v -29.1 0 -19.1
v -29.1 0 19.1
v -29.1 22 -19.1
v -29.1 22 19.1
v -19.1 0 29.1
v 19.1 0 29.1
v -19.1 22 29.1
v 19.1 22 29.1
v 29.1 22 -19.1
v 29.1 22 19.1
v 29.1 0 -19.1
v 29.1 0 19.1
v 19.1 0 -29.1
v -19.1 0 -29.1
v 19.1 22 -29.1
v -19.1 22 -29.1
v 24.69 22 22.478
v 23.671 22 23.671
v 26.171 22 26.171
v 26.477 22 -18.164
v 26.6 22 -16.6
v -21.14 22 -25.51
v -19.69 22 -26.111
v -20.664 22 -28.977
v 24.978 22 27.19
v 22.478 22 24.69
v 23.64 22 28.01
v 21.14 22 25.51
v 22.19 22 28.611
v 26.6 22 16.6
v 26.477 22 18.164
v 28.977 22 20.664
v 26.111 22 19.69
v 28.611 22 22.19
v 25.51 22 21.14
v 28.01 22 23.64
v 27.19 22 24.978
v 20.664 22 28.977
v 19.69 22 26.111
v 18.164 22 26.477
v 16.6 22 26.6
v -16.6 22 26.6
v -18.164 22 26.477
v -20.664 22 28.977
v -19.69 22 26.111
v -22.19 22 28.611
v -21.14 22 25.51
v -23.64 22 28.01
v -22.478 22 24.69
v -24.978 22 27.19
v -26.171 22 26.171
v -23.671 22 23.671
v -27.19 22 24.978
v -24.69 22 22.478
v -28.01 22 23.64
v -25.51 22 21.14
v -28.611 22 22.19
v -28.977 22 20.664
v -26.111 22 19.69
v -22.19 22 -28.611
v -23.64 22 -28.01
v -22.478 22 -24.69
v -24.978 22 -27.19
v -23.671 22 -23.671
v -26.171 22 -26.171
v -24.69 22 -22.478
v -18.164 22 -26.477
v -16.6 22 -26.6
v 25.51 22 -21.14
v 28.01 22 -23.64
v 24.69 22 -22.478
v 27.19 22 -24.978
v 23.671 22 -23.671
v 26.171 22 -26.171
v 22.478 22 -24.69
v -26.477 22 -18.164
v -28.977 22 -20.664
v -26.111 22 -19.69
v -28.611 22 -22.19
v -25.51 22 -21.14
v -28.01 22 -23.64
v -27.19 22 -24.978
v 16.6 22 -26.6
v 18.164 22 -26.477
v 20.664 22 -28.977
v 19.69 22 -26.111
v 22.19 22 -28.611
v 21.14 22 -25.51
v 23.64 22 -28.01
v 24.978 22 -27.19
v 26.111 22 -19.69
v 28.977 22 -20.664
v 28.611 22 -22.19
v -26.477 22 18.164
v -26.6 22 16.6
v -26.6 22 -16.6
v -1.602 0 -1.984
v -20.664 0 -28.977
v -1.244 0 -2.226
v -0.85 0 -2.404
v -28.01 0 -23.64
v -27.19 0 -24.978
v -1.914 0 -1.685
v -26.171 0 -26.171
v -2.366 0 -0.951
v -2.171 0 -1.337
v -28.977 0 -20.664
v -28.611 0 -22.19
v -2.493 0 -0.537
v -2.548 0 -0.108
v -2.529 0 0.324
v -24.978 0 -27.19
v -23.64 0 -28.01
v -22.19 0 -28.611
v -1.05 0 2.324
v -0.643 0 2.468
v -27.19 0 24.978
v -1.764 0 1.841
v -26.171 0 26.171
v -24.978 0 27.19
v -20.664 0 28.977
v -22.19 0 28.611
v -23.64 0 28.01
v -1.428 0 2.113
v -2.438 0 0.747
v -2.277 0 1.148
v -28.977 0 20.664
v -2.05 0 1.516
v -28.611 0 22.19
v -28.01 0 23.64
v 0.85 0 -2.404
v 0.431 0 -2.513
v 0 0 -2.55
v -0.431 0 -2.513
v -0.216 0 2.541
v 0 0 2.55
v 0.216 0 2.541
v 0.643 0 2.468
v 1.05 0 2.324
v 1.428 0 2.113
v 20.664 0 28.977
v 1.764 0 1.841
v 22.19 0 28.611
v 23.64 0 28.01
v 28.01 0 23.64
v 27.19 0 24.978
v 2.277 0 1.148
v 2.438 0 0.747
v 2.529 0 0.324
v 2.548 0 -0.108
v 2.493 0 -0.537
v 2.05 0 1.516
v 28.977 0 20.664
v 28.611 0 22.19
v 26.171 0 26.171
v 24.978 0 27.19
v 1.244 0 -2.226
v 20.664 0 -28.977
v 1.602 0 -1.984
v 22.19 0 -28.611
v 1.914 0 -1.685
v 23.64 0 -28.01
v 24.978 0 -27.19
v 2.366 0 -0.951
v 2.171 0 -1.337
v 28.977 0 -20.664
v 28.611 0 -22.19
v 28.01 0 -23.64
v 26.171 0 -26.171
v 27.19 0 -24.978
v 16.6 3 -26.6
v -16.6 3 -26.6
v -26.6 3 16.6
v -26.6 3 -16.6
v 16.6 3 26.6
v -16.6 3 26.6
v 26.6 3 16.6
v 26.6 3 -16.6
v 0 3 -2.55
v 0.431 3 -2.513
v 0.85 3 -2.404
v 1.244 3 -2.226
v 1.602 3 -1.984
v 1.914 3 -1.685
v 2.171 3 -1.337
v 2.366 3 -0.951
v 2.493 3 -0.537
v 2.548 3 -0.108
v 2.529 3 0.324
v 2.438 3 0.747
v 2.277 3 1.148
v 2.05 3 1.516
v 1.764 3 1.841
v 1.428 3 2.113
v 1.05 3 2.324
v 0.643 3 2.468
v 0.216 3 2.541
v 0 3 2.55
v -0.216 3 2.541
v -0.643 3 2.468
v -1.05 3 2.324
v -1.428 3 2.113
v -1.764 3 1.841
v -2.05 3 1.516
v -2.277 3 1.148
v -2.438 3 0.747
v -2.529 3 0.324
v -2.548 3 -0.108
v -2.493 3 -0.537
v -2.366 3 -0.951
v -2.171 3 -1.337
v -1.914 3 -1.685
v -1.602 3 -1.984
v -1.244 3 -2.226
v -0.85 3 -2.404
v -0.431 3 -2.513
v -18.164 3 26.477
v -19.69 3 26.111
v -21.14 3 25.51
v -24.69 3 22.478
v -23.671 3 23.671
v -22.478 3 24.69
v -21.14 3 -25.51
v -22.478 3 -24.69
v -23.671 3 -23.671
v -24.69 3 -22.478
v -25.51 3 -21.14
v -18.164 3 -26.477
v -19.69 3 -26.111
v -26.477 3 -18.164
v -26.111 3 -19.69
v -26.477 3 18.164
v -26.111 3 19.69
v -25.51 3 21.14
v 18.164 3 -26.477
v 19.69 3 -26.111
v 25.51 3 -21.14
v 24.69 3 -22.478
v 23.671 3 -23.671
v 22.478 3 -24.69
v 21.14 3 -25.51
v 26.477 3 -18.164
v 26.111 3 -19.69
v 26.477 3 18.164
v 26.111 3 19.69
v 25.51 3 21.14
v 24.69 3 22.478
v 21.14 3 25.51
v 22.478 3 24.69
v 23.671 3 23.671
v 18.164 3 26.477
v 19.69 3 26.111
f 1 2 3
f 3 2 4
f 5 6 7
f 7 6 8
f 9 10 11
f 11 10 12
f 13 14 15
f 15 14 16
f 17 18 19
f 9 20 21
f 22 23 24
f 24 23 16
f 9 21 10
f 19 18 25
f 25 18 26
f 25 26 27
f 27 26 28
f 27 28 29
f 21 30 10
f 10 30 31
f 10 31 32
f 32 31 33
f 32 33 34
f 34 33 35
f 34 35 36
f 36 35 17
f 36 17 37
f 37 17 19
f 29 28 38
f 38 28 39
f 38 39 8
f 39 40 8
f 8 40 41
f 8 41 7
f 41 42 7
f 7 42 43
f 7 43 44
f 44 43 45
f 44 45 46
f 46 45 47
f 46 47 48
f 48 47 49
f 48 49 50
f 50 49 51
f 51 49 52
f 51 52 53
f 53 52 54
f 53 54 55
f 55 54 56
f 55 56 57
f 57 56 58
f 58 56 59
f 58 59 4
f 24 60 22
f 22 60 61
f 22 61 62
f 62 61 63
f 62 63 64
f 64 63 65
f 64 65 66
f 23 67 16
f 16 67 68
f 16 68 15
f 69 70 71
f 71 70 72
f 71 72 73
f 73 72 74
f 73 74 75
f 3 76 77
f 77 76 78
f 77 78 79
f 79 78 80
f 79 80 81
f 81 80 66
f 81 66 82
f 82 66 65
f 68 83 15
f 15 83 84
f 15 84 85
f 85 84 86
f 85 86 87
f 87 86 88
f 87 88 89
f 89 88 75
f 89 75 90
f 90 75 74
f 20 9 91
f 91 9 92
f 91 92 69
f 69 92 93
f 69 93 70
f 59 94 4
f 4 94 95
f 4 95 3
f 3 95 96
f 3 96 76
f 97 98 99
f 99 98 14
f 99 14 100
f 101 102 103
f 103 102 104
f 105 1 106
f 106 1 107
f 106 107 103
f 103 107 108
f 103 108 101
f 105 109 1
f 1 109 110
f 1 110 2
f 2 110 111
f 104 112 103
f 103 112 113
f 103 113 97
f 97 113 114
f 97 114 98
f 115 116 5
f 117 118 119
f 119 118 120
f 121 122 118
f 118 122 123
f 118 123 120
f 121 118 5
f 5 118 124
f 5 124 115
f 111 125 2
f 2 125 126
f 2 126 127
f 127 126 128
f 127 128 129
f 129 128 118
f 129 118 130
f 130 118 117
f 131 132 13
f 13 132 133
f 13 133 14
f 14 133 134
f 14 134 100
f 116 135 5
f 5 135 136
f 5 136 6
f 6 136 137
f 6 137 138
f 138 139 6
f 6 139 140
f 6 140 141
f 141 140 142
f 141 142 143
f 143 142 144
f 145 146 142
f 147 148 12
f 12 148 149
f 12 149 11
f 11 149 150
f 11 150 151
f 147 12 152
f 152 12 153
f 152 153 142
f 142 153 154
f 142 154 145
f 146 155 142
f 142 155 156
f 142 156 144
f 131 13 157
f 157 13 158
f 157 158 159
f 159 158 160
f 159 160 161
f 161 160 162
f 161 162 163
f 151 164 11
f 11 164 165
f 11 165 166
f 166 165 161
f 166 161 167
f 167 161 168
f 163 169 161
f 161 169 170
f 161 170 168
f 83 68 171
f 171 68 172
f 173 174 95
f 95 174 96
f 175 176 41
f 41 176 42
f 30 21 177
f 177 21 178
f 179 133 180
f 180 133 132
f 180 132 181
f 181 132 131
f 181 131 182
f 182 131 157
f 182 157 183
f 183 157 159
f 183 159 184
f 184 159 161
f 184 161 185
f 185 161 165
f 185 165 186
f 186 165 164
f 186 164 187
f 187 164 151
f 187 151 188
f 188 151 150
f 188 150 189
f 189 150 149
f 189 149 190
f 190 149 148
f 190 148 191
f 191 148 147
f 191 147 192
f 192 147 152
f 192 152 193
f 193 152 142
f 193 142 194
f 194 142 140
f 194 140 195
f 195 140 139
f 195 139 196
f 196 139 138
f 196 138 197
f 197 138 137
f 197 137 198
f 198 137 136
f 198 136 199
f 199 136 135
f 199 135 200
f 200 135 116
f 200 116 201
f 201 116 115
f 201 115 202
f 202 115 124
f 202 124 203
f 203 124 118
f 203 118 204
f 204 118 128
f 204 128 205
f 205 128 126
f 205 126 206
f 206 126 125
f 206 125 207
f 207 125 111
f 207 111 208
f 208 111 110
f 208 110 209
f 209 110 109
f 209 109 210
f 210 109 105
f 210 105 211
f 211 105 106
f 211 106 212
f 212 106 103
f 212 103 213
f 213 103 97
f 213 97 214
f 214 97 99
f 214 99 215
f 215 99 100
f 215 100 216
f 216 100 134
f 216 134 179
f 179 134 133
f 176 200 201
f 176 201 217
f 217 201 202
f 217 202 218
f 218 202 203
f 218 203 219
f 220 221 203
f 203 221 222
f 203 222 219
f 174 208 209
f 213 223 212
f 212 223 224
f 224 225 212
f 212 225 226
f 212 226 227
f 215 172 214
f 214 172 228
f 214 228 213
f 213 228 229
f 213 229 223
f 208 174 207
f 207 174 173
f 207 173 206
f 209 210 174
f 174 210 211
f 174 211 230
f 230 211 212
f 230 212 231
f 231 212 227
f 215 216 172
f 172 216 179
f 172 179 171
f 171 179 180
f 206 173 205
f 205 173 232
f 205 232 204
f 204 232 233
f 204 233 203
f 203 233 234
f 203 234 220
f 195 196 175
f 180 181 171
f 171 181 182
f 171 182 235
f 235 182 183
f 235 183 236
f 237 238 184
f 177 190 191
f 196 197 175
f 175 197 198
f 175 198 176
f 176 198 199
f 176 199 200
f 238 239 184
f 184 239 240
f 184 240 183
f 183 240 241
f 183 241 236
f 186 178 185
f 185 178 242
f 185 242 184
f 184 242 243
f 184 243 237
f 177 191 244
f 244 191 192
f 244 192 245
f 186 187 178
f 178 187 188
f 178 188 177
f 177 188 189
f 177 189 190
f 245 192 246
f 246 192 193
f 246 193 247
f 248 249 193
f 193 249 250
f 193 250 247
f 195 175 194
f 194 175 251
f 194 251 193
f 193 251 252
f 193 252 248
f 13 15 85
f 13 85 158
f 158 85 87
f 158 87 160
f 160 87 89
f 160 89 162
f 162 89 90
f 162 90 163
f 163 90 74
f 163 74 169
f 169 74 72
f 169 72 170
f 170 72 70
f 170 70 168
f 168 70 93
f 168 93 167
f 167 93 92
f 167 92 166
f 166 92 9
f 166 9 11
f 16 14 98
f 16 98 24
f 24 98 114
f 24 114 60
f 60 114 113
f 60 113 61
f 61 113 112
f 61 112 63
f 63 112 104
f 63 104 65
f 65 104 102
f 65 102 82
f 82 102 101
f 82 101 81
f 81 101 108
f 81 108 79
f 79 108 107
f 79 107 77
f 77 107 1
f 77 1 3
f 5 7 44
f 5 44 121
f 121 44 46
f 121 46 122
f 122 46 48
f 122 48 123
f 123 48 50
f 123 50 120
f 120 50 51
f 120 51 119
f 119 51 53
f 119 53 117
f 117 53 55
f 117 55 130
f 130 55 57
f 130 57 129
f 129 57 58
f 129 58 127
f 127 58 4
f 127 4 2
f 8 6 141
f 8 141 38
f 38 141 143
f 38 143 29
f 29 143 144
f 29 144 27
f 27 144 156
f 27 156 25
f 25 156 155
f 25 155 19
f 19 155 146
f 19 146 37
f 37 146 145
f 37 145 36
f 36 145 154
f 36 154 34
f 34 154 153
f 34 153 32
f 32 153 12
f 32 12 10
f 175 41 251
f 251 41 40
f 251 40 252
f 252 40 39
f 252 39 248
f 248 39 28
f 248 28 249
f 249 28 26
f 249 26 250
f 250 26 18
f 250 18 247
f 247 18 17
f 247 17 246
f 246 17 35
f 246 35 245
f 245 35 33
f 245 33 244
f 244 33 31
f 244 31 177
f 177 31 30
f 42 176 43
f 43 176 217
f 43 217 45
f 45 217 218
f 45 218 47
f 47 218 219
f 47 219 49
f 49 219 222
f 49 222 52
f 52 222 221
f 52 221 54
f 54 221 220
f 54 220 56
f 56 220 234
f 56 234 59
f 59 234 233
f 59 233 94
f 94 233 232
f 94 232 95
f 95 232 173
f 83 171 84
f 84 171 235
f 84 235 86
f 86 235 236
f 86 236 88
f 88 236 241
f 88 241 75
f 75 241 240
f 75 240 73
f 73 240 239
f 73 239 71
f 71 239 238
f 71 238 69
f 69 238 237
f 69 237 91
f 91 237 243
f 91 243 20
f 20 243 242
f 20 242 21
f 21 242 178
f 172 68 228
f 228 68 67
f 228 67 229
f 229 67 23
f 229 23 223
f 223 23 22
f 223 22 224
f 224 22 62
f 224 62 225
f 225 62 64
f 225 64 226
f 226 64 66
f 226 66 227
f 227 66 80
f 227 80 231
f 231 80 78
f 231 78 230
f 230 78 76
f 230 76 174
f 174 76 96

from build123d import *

# Parameters (mm, degrees)
SKETCH_1_W      = 58.2
SKETCH_1_H      = 58.2
SKETCH_1_W_2    = 53.2
SKETCH_1_H_2    = 53.2
EXTRUDE_1_DEPTH = 22
SKETCH_1_3_W    = 53.2
SKETCH_1_3_H    = 53.2
SKETCH_1_3_R    = 2.55
EXTRUDE_2_DEPTH = 3
FILLET_1_R      = 10


with BuildPart() as part:
    # 草图1 → 凸台-拉伸1 (new body)
    with BuildSketch(Plane(origin=(0, 0, 0), x_dir=(1, 0, 0), z_dir=(0, 1, 0))):
        Rectangle(SKETCH_1_W, SKETCH_1_H)
        Rectangle(SKETCH_1_W_2, SKETCH_1_H_2, mode=Mode.SUBTRACT)
    extrude(amount=EXTRUDE_1_DEPTH)

    # 草图1<3> → 凸台-拉伸2 (add)
    with BuildSketch(Plane(origin=(0, 0, 0), x_dir=(1, 0, 0), z_dir=(0, 1, 0))):
        Rectangle(SKETCH_1_3_W, SKETCH_1_3_H)
        Circle(SKETCH_1_3_R, mode=Mode.SUBTRACT)
    extrude(amount=EXTRUDE_2_DEPTH)

    # 圆角1
    fillet_1_edges = [part.edges().sort_by_distance(p)[0] for p in [
        (29.1, 11, 29.1),
        (26.6, 12.5, 26.6),
        (-26.6, 12.5, 26.6),
        (26.6, 12.5, -26.6),
        (-26.6, 12.5, -26.6),
        (29.1, 11, -29.1),
        (-29.1, 11, -29.1),
        (-29.1, 11, 29.1),
    ]]
    fillet(fillet_1_edges, radius=FILLET_1_R)


solid = part.part
